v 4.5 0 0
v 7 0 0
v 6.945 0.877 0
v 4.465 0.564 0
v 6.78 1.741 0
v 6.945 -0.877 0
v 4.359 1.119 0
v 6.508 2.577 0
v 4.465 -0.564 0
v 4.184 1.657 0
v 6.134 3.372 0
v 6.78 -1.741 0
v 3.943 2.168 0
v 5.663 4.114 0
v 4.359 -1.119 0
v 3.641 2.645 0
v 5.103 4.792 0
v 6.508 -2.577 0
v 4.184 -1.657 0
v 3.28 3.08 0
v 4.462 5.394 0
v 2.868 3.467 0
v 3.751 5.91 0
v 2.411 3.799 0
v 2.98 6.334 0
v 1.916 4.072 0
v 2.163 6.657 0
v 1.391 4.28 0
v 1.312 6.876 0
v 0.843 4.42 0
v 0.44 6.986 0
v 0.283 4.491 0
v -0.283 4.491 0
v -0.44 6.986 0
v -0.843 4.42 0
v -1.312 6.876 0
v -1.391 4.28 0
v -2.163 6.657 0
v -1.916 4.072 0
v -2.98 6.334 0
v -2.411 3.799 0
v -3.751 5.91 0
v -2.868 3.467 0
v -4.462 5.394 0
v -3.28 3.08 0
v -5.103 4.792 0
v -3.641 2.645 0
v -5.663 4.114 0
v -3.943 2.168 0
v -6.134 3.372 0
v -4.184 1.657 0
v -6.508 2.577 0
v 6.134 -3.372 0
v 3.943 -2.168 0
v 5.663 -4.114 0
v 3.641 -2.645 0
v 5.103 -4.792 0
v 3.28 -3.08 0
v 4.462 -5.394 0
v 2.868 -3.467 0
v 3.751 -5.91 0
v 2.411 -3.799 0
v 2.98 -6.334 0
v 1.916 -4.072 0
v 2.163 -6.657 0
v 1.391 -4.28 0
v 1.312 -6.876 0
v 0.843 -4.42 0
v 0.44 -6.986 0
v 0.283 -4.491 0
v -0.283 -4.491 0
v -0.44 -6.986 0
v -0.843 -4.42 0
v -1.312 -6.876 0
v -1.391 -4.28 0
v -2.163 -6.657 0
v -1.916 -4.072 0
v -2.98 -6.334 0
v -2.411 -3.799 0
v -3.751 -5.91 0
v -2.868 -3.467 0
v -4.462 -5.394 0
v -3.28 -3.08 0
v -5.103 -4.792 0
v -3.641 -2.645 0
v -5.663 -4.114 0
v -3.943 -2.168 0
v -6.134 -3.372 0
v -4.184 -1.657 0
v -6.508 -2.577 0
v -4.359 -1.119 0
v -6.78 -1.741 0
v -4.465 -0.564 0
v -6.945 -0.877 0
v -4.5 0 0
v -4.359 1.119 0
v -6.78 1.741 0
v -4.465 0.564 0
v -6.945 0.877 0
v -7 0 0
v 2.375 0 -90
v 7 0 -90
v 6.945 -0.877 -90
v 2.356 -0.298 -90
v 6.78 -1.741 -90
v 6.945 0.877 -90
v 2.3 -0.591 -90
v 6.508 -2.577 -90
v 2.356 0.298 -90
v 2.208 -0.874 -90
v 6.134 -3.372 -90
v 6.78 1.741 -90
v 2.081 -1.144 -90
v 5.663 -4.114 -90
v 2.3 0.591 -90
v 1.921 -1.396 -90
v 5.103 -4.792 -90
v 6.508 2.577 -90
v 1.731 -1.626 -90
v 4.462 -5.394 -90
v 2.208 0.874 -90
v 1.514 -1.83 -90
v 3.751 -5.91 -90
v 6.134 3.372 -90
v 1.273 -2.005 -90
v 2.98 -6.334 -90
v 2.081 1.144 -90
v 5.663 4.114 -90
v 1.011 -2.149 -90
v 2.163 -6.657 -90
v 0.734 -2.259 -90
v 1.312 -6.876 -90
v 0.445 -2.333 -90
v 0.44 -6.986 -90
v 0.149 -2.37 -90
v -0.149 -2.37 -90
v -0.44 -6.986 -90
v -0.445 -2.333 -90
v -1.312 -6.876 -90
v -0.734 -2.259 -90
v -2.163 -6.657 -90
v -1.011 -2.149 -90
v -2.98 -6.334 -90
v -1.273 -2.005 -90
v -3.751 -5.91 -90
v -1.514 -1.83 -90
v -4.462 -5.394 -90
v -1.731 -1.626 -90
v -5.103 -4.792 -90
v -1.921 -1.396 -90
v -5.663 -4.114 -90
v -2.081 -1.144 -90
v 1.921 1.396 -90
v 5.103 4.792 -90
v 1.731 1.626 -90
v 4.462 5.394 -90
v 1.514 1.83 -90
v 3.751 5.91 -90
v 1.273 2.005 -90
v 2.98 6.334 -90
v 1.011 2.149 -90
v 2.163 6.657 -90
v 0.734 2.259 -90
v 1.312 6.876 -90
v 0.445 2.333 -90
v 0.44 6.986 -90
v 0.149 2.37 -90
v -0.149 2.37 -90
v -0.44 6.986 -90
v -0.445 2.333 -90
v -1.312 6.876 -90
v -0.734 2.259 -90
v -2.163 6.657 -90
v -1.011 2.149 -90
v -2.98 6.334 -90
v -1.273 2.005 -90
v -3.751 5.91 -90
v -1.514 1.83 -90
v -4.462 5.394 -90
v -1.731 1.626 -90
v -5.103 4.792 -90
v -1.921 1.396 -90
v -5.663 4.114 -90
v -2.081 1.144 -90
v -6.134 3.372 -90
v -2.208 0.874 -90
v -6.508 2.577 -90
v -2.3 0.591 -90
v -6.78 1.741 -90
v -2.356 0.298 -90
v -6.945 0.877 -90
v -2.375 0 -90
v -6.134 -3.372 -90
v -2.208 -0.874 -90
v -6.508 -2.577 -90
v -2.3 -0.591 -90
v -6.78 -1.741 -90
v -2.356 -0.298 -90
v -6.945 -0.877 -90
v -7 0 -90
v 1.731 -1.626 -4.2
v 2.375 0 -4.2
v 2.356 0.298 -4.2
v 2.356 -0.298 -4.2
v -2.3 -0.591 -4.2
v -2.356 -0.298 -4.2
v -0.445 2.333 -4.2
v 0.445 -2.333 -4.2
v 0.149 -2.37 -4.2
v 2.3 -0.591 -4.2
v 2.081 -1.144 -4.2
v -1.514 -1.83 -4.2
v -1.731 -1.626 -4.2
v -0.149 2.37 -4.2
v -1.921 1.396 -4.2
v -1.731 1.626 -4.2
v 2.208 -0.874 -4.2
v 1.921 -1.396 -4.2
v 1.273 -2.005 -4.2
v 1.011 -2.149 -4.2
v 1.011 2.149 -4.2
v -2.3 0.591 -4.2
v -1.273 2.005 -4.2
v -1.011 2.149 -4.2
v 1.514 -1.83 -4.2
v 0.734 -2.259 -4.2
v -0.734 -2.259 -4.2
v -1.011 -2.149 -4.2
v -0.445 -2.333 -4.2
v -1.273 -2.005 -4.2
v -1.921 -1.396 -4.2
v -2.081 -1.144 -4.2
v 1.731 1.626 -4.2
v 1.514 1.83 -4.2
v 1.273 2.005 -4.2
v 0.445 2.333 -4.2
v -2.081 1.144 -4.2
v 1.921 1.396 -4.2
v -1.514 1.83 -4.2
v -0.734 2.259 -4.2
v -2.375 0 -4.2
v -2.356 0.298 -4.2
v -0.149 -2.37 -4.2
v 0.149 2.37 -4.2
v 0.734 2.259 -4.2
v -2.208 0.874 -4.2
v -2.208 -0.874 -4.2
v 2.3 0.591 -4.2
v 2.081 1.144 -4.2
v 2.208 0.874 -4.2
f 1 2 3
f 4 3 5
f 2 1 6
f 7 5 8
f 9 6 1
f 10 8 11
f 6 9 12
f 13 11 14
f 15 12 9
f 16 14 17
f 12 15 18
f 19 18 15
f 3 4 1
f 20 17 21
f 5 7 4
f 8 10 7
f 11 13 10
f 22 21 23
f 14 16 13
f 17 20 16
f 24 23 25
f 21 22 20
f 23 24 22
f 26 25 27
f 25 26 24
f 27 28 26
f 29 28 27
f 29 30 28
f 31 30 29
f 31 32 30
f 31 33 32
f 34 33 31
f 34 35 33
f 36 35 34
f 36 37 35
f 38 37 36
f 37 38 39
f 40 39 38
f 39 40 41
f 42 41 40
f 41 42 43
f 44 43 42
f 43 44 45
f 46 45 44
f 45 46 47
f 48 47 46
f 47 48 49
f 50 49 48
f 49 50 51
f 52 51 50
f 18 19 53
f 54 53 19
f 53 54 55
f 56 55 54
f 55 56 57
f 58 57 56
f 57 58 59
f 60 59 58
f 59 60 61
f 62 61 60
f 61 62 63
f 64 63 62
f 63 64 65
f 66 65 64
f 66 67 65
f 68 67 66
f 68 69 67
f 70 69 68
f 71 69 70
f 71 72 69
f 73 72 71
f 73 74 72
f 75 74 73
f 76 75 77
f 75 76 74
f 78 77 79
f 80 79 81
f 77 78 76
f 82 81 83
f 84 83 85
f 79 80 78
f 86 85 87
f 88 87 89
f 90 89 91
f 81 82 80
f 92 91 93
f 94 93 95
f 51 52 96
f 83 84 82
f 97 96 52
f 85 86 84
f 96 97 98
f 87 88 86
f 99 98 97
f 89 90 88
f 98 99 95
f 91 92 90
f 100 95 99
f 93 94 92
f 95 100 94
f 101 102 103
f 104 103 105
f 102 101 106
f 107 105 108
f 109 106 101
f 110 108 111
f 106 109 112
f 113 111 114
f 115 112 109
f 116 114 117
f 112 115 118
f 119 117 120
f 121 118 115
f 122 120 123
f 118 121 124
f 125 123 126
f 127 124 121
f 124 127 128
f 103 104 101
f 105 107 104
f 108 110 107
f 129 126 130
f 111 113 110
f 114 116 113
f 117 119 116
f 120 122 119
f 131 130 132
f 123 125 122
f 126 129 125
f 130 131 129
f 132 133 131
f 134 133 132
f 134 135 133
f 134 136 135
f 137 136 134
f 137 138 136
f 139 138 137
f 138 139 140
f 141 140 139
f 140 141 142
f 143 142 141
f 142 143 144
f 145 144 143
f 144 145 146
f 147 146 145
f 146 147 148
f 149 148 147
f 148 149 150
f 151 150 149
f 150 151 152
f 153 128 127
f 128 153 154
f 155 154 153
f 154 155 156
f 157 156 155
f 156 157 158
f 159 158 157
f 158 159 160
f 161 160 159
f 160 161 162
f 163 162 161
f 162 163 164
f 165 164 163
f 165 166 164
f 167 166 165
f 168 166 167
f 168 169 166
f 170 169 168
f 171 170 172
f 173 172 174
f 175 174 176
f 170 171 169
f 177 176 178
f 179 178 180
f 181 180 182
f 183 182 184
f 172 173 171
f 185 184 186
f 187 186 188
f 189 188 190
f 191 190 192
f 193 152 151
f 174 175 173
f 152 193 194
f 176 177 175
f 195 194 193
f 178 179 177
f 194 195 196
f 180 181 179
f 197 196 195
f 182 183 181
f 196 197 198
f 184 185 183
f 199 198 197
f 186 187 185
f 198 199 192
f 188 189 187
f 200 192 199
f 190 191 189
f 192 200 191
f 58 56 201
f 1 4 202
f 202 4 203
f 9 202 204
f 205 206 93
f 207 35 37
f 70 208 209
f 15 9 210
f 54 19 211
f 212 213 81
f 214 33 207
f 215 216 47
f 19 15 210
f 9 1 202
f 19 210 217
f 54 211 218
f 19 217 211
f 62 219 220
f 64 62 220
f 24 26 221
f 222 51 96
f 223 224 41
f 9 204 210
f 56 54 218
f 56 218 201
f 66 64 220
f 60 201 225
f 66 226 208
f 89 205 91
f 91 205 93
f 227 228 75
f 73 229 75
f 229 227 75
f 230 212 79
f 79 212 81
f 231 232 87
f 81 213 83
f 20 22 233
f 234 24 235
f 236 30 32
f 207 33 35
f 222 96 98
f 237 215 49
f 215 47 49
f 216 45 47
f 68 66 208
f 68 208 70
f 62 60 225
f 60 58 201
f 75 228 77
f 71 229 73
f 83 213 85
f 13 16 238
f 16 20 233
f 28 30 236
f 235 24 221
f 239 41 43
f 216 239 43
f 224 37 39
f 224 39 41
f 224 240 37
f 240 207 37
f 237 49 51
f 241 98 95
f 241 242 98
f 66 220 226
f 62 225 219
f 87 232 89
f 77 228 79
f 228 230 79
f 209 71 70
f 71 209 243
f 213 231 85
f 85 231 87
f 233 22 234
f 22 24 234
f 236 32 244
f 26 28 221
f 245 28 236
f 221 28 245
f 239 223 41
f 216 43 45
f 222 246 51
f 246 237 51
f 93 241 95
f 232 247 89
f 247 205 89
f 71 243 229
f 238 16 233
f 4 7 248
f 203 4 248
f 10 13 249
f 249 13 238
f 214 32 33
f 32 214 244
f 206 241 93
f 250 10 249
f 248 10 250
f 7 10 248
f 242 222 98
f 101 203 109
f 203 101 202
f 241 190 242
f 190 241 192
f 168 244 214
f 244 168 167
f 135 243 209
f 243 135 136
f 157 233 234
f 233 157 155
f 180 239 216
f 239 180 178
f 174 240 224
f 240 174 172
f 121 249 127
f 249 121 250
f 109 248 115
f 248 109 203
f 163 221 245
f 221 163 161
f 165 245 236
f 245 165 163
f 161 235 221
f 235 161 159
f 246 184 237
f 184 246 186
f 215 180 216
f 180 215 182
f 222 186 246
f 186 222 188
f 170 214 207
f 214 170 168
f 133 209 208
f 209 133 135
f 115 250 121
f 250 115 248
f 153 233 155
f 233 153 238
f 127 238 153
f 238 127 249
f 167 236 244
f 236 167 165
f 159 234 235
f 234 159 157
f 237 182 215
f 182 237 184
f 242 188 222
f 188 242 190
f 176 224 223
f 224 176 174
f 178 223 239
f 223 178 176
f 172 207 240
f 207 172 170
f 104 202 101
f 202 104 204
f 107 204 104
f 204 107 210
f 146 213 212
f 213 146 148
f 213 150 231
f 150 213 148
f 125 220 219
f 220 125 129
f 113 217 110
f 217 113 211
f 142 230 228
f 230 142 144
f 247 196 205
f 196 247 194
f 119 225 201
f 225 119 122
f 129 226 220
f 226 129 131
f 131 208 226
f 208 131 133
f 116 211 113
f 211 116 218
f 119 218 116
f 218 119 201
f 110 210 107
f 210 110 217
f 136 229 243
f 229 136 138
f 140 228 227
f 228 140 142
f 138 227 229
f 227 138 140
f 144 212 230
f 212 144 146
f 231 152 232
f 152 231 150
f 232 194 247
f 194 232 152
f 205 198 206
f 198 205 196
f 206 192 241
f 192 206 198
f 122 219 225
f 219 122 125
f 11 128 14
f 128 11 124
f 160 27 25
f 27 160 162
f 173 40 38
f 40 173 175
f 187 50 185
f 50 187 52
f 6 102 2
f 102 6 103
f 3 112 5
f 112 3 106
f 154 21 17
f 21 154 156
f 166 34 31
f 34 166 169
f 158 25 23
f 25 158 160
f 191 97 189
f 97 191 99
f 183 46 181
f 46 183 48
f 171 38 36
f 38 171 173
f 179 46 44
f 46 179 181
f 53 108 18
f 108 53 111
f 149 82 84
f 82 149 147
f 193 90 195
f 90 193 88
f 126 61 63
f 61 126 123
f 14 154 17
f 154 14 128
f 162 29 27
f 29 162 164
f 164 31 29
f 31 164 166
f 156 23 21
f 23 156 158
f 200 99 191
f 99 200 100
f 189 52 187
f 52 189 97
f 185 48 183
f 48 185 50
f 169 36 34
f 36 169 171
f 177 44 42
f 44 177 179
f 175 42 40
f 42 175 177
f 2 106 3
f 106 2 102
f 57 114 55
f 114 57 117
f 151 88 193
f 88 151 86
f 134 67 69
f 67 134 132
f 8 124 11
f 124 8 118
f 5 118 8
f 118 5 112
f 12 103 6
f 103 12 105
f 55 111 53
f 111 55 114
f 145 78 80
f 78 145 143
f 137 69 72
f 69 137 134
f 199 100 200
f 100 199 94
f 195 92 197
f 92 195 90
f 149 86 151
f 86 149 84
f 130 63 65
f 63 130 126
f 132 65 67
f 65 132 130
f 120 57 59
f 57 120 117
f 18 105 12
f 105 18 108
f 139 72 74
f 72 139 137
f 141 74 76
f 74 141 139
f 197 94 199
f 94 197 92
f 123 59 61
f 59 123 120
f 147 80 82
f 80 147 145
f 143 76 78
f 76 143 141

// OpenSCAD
$fn = 50;


difference() {
	union() {
		translate(v = [0, 0, -90.0000000000]) {
			cylinder(h = 90, r = 7.0000000000);
		}
		cylinder(h = 0, r = 13.0000000000);
	}
	union() {
		translate(v = [0, 0, 0]) {
			rotate(a = [0, 0, 0]) {
				difference() {
					union() {
						#translate(v = [0, 0, -90.0000000000]) {
							cylinder(h = 90, r = 2.2500000000);
						}
						#translate(v = [0, 0, -4.2000000000]) {
							cylinder(h = 4.2000000000, r = 7.0000000000, r1 = 2.3750000000, r2 = 4.5000000000);
						}
						#translate(v = [0, 0, -90.0000000000]) {
							cylinder(h = 90, r = 2.3750000000);
						}
						#translate(v = [0, 0, -90.0000000000]) {
							cylinder(h = 90, r = 2.2500000000);
						}
					}
					union();
				}
			}
		}
	}
}
